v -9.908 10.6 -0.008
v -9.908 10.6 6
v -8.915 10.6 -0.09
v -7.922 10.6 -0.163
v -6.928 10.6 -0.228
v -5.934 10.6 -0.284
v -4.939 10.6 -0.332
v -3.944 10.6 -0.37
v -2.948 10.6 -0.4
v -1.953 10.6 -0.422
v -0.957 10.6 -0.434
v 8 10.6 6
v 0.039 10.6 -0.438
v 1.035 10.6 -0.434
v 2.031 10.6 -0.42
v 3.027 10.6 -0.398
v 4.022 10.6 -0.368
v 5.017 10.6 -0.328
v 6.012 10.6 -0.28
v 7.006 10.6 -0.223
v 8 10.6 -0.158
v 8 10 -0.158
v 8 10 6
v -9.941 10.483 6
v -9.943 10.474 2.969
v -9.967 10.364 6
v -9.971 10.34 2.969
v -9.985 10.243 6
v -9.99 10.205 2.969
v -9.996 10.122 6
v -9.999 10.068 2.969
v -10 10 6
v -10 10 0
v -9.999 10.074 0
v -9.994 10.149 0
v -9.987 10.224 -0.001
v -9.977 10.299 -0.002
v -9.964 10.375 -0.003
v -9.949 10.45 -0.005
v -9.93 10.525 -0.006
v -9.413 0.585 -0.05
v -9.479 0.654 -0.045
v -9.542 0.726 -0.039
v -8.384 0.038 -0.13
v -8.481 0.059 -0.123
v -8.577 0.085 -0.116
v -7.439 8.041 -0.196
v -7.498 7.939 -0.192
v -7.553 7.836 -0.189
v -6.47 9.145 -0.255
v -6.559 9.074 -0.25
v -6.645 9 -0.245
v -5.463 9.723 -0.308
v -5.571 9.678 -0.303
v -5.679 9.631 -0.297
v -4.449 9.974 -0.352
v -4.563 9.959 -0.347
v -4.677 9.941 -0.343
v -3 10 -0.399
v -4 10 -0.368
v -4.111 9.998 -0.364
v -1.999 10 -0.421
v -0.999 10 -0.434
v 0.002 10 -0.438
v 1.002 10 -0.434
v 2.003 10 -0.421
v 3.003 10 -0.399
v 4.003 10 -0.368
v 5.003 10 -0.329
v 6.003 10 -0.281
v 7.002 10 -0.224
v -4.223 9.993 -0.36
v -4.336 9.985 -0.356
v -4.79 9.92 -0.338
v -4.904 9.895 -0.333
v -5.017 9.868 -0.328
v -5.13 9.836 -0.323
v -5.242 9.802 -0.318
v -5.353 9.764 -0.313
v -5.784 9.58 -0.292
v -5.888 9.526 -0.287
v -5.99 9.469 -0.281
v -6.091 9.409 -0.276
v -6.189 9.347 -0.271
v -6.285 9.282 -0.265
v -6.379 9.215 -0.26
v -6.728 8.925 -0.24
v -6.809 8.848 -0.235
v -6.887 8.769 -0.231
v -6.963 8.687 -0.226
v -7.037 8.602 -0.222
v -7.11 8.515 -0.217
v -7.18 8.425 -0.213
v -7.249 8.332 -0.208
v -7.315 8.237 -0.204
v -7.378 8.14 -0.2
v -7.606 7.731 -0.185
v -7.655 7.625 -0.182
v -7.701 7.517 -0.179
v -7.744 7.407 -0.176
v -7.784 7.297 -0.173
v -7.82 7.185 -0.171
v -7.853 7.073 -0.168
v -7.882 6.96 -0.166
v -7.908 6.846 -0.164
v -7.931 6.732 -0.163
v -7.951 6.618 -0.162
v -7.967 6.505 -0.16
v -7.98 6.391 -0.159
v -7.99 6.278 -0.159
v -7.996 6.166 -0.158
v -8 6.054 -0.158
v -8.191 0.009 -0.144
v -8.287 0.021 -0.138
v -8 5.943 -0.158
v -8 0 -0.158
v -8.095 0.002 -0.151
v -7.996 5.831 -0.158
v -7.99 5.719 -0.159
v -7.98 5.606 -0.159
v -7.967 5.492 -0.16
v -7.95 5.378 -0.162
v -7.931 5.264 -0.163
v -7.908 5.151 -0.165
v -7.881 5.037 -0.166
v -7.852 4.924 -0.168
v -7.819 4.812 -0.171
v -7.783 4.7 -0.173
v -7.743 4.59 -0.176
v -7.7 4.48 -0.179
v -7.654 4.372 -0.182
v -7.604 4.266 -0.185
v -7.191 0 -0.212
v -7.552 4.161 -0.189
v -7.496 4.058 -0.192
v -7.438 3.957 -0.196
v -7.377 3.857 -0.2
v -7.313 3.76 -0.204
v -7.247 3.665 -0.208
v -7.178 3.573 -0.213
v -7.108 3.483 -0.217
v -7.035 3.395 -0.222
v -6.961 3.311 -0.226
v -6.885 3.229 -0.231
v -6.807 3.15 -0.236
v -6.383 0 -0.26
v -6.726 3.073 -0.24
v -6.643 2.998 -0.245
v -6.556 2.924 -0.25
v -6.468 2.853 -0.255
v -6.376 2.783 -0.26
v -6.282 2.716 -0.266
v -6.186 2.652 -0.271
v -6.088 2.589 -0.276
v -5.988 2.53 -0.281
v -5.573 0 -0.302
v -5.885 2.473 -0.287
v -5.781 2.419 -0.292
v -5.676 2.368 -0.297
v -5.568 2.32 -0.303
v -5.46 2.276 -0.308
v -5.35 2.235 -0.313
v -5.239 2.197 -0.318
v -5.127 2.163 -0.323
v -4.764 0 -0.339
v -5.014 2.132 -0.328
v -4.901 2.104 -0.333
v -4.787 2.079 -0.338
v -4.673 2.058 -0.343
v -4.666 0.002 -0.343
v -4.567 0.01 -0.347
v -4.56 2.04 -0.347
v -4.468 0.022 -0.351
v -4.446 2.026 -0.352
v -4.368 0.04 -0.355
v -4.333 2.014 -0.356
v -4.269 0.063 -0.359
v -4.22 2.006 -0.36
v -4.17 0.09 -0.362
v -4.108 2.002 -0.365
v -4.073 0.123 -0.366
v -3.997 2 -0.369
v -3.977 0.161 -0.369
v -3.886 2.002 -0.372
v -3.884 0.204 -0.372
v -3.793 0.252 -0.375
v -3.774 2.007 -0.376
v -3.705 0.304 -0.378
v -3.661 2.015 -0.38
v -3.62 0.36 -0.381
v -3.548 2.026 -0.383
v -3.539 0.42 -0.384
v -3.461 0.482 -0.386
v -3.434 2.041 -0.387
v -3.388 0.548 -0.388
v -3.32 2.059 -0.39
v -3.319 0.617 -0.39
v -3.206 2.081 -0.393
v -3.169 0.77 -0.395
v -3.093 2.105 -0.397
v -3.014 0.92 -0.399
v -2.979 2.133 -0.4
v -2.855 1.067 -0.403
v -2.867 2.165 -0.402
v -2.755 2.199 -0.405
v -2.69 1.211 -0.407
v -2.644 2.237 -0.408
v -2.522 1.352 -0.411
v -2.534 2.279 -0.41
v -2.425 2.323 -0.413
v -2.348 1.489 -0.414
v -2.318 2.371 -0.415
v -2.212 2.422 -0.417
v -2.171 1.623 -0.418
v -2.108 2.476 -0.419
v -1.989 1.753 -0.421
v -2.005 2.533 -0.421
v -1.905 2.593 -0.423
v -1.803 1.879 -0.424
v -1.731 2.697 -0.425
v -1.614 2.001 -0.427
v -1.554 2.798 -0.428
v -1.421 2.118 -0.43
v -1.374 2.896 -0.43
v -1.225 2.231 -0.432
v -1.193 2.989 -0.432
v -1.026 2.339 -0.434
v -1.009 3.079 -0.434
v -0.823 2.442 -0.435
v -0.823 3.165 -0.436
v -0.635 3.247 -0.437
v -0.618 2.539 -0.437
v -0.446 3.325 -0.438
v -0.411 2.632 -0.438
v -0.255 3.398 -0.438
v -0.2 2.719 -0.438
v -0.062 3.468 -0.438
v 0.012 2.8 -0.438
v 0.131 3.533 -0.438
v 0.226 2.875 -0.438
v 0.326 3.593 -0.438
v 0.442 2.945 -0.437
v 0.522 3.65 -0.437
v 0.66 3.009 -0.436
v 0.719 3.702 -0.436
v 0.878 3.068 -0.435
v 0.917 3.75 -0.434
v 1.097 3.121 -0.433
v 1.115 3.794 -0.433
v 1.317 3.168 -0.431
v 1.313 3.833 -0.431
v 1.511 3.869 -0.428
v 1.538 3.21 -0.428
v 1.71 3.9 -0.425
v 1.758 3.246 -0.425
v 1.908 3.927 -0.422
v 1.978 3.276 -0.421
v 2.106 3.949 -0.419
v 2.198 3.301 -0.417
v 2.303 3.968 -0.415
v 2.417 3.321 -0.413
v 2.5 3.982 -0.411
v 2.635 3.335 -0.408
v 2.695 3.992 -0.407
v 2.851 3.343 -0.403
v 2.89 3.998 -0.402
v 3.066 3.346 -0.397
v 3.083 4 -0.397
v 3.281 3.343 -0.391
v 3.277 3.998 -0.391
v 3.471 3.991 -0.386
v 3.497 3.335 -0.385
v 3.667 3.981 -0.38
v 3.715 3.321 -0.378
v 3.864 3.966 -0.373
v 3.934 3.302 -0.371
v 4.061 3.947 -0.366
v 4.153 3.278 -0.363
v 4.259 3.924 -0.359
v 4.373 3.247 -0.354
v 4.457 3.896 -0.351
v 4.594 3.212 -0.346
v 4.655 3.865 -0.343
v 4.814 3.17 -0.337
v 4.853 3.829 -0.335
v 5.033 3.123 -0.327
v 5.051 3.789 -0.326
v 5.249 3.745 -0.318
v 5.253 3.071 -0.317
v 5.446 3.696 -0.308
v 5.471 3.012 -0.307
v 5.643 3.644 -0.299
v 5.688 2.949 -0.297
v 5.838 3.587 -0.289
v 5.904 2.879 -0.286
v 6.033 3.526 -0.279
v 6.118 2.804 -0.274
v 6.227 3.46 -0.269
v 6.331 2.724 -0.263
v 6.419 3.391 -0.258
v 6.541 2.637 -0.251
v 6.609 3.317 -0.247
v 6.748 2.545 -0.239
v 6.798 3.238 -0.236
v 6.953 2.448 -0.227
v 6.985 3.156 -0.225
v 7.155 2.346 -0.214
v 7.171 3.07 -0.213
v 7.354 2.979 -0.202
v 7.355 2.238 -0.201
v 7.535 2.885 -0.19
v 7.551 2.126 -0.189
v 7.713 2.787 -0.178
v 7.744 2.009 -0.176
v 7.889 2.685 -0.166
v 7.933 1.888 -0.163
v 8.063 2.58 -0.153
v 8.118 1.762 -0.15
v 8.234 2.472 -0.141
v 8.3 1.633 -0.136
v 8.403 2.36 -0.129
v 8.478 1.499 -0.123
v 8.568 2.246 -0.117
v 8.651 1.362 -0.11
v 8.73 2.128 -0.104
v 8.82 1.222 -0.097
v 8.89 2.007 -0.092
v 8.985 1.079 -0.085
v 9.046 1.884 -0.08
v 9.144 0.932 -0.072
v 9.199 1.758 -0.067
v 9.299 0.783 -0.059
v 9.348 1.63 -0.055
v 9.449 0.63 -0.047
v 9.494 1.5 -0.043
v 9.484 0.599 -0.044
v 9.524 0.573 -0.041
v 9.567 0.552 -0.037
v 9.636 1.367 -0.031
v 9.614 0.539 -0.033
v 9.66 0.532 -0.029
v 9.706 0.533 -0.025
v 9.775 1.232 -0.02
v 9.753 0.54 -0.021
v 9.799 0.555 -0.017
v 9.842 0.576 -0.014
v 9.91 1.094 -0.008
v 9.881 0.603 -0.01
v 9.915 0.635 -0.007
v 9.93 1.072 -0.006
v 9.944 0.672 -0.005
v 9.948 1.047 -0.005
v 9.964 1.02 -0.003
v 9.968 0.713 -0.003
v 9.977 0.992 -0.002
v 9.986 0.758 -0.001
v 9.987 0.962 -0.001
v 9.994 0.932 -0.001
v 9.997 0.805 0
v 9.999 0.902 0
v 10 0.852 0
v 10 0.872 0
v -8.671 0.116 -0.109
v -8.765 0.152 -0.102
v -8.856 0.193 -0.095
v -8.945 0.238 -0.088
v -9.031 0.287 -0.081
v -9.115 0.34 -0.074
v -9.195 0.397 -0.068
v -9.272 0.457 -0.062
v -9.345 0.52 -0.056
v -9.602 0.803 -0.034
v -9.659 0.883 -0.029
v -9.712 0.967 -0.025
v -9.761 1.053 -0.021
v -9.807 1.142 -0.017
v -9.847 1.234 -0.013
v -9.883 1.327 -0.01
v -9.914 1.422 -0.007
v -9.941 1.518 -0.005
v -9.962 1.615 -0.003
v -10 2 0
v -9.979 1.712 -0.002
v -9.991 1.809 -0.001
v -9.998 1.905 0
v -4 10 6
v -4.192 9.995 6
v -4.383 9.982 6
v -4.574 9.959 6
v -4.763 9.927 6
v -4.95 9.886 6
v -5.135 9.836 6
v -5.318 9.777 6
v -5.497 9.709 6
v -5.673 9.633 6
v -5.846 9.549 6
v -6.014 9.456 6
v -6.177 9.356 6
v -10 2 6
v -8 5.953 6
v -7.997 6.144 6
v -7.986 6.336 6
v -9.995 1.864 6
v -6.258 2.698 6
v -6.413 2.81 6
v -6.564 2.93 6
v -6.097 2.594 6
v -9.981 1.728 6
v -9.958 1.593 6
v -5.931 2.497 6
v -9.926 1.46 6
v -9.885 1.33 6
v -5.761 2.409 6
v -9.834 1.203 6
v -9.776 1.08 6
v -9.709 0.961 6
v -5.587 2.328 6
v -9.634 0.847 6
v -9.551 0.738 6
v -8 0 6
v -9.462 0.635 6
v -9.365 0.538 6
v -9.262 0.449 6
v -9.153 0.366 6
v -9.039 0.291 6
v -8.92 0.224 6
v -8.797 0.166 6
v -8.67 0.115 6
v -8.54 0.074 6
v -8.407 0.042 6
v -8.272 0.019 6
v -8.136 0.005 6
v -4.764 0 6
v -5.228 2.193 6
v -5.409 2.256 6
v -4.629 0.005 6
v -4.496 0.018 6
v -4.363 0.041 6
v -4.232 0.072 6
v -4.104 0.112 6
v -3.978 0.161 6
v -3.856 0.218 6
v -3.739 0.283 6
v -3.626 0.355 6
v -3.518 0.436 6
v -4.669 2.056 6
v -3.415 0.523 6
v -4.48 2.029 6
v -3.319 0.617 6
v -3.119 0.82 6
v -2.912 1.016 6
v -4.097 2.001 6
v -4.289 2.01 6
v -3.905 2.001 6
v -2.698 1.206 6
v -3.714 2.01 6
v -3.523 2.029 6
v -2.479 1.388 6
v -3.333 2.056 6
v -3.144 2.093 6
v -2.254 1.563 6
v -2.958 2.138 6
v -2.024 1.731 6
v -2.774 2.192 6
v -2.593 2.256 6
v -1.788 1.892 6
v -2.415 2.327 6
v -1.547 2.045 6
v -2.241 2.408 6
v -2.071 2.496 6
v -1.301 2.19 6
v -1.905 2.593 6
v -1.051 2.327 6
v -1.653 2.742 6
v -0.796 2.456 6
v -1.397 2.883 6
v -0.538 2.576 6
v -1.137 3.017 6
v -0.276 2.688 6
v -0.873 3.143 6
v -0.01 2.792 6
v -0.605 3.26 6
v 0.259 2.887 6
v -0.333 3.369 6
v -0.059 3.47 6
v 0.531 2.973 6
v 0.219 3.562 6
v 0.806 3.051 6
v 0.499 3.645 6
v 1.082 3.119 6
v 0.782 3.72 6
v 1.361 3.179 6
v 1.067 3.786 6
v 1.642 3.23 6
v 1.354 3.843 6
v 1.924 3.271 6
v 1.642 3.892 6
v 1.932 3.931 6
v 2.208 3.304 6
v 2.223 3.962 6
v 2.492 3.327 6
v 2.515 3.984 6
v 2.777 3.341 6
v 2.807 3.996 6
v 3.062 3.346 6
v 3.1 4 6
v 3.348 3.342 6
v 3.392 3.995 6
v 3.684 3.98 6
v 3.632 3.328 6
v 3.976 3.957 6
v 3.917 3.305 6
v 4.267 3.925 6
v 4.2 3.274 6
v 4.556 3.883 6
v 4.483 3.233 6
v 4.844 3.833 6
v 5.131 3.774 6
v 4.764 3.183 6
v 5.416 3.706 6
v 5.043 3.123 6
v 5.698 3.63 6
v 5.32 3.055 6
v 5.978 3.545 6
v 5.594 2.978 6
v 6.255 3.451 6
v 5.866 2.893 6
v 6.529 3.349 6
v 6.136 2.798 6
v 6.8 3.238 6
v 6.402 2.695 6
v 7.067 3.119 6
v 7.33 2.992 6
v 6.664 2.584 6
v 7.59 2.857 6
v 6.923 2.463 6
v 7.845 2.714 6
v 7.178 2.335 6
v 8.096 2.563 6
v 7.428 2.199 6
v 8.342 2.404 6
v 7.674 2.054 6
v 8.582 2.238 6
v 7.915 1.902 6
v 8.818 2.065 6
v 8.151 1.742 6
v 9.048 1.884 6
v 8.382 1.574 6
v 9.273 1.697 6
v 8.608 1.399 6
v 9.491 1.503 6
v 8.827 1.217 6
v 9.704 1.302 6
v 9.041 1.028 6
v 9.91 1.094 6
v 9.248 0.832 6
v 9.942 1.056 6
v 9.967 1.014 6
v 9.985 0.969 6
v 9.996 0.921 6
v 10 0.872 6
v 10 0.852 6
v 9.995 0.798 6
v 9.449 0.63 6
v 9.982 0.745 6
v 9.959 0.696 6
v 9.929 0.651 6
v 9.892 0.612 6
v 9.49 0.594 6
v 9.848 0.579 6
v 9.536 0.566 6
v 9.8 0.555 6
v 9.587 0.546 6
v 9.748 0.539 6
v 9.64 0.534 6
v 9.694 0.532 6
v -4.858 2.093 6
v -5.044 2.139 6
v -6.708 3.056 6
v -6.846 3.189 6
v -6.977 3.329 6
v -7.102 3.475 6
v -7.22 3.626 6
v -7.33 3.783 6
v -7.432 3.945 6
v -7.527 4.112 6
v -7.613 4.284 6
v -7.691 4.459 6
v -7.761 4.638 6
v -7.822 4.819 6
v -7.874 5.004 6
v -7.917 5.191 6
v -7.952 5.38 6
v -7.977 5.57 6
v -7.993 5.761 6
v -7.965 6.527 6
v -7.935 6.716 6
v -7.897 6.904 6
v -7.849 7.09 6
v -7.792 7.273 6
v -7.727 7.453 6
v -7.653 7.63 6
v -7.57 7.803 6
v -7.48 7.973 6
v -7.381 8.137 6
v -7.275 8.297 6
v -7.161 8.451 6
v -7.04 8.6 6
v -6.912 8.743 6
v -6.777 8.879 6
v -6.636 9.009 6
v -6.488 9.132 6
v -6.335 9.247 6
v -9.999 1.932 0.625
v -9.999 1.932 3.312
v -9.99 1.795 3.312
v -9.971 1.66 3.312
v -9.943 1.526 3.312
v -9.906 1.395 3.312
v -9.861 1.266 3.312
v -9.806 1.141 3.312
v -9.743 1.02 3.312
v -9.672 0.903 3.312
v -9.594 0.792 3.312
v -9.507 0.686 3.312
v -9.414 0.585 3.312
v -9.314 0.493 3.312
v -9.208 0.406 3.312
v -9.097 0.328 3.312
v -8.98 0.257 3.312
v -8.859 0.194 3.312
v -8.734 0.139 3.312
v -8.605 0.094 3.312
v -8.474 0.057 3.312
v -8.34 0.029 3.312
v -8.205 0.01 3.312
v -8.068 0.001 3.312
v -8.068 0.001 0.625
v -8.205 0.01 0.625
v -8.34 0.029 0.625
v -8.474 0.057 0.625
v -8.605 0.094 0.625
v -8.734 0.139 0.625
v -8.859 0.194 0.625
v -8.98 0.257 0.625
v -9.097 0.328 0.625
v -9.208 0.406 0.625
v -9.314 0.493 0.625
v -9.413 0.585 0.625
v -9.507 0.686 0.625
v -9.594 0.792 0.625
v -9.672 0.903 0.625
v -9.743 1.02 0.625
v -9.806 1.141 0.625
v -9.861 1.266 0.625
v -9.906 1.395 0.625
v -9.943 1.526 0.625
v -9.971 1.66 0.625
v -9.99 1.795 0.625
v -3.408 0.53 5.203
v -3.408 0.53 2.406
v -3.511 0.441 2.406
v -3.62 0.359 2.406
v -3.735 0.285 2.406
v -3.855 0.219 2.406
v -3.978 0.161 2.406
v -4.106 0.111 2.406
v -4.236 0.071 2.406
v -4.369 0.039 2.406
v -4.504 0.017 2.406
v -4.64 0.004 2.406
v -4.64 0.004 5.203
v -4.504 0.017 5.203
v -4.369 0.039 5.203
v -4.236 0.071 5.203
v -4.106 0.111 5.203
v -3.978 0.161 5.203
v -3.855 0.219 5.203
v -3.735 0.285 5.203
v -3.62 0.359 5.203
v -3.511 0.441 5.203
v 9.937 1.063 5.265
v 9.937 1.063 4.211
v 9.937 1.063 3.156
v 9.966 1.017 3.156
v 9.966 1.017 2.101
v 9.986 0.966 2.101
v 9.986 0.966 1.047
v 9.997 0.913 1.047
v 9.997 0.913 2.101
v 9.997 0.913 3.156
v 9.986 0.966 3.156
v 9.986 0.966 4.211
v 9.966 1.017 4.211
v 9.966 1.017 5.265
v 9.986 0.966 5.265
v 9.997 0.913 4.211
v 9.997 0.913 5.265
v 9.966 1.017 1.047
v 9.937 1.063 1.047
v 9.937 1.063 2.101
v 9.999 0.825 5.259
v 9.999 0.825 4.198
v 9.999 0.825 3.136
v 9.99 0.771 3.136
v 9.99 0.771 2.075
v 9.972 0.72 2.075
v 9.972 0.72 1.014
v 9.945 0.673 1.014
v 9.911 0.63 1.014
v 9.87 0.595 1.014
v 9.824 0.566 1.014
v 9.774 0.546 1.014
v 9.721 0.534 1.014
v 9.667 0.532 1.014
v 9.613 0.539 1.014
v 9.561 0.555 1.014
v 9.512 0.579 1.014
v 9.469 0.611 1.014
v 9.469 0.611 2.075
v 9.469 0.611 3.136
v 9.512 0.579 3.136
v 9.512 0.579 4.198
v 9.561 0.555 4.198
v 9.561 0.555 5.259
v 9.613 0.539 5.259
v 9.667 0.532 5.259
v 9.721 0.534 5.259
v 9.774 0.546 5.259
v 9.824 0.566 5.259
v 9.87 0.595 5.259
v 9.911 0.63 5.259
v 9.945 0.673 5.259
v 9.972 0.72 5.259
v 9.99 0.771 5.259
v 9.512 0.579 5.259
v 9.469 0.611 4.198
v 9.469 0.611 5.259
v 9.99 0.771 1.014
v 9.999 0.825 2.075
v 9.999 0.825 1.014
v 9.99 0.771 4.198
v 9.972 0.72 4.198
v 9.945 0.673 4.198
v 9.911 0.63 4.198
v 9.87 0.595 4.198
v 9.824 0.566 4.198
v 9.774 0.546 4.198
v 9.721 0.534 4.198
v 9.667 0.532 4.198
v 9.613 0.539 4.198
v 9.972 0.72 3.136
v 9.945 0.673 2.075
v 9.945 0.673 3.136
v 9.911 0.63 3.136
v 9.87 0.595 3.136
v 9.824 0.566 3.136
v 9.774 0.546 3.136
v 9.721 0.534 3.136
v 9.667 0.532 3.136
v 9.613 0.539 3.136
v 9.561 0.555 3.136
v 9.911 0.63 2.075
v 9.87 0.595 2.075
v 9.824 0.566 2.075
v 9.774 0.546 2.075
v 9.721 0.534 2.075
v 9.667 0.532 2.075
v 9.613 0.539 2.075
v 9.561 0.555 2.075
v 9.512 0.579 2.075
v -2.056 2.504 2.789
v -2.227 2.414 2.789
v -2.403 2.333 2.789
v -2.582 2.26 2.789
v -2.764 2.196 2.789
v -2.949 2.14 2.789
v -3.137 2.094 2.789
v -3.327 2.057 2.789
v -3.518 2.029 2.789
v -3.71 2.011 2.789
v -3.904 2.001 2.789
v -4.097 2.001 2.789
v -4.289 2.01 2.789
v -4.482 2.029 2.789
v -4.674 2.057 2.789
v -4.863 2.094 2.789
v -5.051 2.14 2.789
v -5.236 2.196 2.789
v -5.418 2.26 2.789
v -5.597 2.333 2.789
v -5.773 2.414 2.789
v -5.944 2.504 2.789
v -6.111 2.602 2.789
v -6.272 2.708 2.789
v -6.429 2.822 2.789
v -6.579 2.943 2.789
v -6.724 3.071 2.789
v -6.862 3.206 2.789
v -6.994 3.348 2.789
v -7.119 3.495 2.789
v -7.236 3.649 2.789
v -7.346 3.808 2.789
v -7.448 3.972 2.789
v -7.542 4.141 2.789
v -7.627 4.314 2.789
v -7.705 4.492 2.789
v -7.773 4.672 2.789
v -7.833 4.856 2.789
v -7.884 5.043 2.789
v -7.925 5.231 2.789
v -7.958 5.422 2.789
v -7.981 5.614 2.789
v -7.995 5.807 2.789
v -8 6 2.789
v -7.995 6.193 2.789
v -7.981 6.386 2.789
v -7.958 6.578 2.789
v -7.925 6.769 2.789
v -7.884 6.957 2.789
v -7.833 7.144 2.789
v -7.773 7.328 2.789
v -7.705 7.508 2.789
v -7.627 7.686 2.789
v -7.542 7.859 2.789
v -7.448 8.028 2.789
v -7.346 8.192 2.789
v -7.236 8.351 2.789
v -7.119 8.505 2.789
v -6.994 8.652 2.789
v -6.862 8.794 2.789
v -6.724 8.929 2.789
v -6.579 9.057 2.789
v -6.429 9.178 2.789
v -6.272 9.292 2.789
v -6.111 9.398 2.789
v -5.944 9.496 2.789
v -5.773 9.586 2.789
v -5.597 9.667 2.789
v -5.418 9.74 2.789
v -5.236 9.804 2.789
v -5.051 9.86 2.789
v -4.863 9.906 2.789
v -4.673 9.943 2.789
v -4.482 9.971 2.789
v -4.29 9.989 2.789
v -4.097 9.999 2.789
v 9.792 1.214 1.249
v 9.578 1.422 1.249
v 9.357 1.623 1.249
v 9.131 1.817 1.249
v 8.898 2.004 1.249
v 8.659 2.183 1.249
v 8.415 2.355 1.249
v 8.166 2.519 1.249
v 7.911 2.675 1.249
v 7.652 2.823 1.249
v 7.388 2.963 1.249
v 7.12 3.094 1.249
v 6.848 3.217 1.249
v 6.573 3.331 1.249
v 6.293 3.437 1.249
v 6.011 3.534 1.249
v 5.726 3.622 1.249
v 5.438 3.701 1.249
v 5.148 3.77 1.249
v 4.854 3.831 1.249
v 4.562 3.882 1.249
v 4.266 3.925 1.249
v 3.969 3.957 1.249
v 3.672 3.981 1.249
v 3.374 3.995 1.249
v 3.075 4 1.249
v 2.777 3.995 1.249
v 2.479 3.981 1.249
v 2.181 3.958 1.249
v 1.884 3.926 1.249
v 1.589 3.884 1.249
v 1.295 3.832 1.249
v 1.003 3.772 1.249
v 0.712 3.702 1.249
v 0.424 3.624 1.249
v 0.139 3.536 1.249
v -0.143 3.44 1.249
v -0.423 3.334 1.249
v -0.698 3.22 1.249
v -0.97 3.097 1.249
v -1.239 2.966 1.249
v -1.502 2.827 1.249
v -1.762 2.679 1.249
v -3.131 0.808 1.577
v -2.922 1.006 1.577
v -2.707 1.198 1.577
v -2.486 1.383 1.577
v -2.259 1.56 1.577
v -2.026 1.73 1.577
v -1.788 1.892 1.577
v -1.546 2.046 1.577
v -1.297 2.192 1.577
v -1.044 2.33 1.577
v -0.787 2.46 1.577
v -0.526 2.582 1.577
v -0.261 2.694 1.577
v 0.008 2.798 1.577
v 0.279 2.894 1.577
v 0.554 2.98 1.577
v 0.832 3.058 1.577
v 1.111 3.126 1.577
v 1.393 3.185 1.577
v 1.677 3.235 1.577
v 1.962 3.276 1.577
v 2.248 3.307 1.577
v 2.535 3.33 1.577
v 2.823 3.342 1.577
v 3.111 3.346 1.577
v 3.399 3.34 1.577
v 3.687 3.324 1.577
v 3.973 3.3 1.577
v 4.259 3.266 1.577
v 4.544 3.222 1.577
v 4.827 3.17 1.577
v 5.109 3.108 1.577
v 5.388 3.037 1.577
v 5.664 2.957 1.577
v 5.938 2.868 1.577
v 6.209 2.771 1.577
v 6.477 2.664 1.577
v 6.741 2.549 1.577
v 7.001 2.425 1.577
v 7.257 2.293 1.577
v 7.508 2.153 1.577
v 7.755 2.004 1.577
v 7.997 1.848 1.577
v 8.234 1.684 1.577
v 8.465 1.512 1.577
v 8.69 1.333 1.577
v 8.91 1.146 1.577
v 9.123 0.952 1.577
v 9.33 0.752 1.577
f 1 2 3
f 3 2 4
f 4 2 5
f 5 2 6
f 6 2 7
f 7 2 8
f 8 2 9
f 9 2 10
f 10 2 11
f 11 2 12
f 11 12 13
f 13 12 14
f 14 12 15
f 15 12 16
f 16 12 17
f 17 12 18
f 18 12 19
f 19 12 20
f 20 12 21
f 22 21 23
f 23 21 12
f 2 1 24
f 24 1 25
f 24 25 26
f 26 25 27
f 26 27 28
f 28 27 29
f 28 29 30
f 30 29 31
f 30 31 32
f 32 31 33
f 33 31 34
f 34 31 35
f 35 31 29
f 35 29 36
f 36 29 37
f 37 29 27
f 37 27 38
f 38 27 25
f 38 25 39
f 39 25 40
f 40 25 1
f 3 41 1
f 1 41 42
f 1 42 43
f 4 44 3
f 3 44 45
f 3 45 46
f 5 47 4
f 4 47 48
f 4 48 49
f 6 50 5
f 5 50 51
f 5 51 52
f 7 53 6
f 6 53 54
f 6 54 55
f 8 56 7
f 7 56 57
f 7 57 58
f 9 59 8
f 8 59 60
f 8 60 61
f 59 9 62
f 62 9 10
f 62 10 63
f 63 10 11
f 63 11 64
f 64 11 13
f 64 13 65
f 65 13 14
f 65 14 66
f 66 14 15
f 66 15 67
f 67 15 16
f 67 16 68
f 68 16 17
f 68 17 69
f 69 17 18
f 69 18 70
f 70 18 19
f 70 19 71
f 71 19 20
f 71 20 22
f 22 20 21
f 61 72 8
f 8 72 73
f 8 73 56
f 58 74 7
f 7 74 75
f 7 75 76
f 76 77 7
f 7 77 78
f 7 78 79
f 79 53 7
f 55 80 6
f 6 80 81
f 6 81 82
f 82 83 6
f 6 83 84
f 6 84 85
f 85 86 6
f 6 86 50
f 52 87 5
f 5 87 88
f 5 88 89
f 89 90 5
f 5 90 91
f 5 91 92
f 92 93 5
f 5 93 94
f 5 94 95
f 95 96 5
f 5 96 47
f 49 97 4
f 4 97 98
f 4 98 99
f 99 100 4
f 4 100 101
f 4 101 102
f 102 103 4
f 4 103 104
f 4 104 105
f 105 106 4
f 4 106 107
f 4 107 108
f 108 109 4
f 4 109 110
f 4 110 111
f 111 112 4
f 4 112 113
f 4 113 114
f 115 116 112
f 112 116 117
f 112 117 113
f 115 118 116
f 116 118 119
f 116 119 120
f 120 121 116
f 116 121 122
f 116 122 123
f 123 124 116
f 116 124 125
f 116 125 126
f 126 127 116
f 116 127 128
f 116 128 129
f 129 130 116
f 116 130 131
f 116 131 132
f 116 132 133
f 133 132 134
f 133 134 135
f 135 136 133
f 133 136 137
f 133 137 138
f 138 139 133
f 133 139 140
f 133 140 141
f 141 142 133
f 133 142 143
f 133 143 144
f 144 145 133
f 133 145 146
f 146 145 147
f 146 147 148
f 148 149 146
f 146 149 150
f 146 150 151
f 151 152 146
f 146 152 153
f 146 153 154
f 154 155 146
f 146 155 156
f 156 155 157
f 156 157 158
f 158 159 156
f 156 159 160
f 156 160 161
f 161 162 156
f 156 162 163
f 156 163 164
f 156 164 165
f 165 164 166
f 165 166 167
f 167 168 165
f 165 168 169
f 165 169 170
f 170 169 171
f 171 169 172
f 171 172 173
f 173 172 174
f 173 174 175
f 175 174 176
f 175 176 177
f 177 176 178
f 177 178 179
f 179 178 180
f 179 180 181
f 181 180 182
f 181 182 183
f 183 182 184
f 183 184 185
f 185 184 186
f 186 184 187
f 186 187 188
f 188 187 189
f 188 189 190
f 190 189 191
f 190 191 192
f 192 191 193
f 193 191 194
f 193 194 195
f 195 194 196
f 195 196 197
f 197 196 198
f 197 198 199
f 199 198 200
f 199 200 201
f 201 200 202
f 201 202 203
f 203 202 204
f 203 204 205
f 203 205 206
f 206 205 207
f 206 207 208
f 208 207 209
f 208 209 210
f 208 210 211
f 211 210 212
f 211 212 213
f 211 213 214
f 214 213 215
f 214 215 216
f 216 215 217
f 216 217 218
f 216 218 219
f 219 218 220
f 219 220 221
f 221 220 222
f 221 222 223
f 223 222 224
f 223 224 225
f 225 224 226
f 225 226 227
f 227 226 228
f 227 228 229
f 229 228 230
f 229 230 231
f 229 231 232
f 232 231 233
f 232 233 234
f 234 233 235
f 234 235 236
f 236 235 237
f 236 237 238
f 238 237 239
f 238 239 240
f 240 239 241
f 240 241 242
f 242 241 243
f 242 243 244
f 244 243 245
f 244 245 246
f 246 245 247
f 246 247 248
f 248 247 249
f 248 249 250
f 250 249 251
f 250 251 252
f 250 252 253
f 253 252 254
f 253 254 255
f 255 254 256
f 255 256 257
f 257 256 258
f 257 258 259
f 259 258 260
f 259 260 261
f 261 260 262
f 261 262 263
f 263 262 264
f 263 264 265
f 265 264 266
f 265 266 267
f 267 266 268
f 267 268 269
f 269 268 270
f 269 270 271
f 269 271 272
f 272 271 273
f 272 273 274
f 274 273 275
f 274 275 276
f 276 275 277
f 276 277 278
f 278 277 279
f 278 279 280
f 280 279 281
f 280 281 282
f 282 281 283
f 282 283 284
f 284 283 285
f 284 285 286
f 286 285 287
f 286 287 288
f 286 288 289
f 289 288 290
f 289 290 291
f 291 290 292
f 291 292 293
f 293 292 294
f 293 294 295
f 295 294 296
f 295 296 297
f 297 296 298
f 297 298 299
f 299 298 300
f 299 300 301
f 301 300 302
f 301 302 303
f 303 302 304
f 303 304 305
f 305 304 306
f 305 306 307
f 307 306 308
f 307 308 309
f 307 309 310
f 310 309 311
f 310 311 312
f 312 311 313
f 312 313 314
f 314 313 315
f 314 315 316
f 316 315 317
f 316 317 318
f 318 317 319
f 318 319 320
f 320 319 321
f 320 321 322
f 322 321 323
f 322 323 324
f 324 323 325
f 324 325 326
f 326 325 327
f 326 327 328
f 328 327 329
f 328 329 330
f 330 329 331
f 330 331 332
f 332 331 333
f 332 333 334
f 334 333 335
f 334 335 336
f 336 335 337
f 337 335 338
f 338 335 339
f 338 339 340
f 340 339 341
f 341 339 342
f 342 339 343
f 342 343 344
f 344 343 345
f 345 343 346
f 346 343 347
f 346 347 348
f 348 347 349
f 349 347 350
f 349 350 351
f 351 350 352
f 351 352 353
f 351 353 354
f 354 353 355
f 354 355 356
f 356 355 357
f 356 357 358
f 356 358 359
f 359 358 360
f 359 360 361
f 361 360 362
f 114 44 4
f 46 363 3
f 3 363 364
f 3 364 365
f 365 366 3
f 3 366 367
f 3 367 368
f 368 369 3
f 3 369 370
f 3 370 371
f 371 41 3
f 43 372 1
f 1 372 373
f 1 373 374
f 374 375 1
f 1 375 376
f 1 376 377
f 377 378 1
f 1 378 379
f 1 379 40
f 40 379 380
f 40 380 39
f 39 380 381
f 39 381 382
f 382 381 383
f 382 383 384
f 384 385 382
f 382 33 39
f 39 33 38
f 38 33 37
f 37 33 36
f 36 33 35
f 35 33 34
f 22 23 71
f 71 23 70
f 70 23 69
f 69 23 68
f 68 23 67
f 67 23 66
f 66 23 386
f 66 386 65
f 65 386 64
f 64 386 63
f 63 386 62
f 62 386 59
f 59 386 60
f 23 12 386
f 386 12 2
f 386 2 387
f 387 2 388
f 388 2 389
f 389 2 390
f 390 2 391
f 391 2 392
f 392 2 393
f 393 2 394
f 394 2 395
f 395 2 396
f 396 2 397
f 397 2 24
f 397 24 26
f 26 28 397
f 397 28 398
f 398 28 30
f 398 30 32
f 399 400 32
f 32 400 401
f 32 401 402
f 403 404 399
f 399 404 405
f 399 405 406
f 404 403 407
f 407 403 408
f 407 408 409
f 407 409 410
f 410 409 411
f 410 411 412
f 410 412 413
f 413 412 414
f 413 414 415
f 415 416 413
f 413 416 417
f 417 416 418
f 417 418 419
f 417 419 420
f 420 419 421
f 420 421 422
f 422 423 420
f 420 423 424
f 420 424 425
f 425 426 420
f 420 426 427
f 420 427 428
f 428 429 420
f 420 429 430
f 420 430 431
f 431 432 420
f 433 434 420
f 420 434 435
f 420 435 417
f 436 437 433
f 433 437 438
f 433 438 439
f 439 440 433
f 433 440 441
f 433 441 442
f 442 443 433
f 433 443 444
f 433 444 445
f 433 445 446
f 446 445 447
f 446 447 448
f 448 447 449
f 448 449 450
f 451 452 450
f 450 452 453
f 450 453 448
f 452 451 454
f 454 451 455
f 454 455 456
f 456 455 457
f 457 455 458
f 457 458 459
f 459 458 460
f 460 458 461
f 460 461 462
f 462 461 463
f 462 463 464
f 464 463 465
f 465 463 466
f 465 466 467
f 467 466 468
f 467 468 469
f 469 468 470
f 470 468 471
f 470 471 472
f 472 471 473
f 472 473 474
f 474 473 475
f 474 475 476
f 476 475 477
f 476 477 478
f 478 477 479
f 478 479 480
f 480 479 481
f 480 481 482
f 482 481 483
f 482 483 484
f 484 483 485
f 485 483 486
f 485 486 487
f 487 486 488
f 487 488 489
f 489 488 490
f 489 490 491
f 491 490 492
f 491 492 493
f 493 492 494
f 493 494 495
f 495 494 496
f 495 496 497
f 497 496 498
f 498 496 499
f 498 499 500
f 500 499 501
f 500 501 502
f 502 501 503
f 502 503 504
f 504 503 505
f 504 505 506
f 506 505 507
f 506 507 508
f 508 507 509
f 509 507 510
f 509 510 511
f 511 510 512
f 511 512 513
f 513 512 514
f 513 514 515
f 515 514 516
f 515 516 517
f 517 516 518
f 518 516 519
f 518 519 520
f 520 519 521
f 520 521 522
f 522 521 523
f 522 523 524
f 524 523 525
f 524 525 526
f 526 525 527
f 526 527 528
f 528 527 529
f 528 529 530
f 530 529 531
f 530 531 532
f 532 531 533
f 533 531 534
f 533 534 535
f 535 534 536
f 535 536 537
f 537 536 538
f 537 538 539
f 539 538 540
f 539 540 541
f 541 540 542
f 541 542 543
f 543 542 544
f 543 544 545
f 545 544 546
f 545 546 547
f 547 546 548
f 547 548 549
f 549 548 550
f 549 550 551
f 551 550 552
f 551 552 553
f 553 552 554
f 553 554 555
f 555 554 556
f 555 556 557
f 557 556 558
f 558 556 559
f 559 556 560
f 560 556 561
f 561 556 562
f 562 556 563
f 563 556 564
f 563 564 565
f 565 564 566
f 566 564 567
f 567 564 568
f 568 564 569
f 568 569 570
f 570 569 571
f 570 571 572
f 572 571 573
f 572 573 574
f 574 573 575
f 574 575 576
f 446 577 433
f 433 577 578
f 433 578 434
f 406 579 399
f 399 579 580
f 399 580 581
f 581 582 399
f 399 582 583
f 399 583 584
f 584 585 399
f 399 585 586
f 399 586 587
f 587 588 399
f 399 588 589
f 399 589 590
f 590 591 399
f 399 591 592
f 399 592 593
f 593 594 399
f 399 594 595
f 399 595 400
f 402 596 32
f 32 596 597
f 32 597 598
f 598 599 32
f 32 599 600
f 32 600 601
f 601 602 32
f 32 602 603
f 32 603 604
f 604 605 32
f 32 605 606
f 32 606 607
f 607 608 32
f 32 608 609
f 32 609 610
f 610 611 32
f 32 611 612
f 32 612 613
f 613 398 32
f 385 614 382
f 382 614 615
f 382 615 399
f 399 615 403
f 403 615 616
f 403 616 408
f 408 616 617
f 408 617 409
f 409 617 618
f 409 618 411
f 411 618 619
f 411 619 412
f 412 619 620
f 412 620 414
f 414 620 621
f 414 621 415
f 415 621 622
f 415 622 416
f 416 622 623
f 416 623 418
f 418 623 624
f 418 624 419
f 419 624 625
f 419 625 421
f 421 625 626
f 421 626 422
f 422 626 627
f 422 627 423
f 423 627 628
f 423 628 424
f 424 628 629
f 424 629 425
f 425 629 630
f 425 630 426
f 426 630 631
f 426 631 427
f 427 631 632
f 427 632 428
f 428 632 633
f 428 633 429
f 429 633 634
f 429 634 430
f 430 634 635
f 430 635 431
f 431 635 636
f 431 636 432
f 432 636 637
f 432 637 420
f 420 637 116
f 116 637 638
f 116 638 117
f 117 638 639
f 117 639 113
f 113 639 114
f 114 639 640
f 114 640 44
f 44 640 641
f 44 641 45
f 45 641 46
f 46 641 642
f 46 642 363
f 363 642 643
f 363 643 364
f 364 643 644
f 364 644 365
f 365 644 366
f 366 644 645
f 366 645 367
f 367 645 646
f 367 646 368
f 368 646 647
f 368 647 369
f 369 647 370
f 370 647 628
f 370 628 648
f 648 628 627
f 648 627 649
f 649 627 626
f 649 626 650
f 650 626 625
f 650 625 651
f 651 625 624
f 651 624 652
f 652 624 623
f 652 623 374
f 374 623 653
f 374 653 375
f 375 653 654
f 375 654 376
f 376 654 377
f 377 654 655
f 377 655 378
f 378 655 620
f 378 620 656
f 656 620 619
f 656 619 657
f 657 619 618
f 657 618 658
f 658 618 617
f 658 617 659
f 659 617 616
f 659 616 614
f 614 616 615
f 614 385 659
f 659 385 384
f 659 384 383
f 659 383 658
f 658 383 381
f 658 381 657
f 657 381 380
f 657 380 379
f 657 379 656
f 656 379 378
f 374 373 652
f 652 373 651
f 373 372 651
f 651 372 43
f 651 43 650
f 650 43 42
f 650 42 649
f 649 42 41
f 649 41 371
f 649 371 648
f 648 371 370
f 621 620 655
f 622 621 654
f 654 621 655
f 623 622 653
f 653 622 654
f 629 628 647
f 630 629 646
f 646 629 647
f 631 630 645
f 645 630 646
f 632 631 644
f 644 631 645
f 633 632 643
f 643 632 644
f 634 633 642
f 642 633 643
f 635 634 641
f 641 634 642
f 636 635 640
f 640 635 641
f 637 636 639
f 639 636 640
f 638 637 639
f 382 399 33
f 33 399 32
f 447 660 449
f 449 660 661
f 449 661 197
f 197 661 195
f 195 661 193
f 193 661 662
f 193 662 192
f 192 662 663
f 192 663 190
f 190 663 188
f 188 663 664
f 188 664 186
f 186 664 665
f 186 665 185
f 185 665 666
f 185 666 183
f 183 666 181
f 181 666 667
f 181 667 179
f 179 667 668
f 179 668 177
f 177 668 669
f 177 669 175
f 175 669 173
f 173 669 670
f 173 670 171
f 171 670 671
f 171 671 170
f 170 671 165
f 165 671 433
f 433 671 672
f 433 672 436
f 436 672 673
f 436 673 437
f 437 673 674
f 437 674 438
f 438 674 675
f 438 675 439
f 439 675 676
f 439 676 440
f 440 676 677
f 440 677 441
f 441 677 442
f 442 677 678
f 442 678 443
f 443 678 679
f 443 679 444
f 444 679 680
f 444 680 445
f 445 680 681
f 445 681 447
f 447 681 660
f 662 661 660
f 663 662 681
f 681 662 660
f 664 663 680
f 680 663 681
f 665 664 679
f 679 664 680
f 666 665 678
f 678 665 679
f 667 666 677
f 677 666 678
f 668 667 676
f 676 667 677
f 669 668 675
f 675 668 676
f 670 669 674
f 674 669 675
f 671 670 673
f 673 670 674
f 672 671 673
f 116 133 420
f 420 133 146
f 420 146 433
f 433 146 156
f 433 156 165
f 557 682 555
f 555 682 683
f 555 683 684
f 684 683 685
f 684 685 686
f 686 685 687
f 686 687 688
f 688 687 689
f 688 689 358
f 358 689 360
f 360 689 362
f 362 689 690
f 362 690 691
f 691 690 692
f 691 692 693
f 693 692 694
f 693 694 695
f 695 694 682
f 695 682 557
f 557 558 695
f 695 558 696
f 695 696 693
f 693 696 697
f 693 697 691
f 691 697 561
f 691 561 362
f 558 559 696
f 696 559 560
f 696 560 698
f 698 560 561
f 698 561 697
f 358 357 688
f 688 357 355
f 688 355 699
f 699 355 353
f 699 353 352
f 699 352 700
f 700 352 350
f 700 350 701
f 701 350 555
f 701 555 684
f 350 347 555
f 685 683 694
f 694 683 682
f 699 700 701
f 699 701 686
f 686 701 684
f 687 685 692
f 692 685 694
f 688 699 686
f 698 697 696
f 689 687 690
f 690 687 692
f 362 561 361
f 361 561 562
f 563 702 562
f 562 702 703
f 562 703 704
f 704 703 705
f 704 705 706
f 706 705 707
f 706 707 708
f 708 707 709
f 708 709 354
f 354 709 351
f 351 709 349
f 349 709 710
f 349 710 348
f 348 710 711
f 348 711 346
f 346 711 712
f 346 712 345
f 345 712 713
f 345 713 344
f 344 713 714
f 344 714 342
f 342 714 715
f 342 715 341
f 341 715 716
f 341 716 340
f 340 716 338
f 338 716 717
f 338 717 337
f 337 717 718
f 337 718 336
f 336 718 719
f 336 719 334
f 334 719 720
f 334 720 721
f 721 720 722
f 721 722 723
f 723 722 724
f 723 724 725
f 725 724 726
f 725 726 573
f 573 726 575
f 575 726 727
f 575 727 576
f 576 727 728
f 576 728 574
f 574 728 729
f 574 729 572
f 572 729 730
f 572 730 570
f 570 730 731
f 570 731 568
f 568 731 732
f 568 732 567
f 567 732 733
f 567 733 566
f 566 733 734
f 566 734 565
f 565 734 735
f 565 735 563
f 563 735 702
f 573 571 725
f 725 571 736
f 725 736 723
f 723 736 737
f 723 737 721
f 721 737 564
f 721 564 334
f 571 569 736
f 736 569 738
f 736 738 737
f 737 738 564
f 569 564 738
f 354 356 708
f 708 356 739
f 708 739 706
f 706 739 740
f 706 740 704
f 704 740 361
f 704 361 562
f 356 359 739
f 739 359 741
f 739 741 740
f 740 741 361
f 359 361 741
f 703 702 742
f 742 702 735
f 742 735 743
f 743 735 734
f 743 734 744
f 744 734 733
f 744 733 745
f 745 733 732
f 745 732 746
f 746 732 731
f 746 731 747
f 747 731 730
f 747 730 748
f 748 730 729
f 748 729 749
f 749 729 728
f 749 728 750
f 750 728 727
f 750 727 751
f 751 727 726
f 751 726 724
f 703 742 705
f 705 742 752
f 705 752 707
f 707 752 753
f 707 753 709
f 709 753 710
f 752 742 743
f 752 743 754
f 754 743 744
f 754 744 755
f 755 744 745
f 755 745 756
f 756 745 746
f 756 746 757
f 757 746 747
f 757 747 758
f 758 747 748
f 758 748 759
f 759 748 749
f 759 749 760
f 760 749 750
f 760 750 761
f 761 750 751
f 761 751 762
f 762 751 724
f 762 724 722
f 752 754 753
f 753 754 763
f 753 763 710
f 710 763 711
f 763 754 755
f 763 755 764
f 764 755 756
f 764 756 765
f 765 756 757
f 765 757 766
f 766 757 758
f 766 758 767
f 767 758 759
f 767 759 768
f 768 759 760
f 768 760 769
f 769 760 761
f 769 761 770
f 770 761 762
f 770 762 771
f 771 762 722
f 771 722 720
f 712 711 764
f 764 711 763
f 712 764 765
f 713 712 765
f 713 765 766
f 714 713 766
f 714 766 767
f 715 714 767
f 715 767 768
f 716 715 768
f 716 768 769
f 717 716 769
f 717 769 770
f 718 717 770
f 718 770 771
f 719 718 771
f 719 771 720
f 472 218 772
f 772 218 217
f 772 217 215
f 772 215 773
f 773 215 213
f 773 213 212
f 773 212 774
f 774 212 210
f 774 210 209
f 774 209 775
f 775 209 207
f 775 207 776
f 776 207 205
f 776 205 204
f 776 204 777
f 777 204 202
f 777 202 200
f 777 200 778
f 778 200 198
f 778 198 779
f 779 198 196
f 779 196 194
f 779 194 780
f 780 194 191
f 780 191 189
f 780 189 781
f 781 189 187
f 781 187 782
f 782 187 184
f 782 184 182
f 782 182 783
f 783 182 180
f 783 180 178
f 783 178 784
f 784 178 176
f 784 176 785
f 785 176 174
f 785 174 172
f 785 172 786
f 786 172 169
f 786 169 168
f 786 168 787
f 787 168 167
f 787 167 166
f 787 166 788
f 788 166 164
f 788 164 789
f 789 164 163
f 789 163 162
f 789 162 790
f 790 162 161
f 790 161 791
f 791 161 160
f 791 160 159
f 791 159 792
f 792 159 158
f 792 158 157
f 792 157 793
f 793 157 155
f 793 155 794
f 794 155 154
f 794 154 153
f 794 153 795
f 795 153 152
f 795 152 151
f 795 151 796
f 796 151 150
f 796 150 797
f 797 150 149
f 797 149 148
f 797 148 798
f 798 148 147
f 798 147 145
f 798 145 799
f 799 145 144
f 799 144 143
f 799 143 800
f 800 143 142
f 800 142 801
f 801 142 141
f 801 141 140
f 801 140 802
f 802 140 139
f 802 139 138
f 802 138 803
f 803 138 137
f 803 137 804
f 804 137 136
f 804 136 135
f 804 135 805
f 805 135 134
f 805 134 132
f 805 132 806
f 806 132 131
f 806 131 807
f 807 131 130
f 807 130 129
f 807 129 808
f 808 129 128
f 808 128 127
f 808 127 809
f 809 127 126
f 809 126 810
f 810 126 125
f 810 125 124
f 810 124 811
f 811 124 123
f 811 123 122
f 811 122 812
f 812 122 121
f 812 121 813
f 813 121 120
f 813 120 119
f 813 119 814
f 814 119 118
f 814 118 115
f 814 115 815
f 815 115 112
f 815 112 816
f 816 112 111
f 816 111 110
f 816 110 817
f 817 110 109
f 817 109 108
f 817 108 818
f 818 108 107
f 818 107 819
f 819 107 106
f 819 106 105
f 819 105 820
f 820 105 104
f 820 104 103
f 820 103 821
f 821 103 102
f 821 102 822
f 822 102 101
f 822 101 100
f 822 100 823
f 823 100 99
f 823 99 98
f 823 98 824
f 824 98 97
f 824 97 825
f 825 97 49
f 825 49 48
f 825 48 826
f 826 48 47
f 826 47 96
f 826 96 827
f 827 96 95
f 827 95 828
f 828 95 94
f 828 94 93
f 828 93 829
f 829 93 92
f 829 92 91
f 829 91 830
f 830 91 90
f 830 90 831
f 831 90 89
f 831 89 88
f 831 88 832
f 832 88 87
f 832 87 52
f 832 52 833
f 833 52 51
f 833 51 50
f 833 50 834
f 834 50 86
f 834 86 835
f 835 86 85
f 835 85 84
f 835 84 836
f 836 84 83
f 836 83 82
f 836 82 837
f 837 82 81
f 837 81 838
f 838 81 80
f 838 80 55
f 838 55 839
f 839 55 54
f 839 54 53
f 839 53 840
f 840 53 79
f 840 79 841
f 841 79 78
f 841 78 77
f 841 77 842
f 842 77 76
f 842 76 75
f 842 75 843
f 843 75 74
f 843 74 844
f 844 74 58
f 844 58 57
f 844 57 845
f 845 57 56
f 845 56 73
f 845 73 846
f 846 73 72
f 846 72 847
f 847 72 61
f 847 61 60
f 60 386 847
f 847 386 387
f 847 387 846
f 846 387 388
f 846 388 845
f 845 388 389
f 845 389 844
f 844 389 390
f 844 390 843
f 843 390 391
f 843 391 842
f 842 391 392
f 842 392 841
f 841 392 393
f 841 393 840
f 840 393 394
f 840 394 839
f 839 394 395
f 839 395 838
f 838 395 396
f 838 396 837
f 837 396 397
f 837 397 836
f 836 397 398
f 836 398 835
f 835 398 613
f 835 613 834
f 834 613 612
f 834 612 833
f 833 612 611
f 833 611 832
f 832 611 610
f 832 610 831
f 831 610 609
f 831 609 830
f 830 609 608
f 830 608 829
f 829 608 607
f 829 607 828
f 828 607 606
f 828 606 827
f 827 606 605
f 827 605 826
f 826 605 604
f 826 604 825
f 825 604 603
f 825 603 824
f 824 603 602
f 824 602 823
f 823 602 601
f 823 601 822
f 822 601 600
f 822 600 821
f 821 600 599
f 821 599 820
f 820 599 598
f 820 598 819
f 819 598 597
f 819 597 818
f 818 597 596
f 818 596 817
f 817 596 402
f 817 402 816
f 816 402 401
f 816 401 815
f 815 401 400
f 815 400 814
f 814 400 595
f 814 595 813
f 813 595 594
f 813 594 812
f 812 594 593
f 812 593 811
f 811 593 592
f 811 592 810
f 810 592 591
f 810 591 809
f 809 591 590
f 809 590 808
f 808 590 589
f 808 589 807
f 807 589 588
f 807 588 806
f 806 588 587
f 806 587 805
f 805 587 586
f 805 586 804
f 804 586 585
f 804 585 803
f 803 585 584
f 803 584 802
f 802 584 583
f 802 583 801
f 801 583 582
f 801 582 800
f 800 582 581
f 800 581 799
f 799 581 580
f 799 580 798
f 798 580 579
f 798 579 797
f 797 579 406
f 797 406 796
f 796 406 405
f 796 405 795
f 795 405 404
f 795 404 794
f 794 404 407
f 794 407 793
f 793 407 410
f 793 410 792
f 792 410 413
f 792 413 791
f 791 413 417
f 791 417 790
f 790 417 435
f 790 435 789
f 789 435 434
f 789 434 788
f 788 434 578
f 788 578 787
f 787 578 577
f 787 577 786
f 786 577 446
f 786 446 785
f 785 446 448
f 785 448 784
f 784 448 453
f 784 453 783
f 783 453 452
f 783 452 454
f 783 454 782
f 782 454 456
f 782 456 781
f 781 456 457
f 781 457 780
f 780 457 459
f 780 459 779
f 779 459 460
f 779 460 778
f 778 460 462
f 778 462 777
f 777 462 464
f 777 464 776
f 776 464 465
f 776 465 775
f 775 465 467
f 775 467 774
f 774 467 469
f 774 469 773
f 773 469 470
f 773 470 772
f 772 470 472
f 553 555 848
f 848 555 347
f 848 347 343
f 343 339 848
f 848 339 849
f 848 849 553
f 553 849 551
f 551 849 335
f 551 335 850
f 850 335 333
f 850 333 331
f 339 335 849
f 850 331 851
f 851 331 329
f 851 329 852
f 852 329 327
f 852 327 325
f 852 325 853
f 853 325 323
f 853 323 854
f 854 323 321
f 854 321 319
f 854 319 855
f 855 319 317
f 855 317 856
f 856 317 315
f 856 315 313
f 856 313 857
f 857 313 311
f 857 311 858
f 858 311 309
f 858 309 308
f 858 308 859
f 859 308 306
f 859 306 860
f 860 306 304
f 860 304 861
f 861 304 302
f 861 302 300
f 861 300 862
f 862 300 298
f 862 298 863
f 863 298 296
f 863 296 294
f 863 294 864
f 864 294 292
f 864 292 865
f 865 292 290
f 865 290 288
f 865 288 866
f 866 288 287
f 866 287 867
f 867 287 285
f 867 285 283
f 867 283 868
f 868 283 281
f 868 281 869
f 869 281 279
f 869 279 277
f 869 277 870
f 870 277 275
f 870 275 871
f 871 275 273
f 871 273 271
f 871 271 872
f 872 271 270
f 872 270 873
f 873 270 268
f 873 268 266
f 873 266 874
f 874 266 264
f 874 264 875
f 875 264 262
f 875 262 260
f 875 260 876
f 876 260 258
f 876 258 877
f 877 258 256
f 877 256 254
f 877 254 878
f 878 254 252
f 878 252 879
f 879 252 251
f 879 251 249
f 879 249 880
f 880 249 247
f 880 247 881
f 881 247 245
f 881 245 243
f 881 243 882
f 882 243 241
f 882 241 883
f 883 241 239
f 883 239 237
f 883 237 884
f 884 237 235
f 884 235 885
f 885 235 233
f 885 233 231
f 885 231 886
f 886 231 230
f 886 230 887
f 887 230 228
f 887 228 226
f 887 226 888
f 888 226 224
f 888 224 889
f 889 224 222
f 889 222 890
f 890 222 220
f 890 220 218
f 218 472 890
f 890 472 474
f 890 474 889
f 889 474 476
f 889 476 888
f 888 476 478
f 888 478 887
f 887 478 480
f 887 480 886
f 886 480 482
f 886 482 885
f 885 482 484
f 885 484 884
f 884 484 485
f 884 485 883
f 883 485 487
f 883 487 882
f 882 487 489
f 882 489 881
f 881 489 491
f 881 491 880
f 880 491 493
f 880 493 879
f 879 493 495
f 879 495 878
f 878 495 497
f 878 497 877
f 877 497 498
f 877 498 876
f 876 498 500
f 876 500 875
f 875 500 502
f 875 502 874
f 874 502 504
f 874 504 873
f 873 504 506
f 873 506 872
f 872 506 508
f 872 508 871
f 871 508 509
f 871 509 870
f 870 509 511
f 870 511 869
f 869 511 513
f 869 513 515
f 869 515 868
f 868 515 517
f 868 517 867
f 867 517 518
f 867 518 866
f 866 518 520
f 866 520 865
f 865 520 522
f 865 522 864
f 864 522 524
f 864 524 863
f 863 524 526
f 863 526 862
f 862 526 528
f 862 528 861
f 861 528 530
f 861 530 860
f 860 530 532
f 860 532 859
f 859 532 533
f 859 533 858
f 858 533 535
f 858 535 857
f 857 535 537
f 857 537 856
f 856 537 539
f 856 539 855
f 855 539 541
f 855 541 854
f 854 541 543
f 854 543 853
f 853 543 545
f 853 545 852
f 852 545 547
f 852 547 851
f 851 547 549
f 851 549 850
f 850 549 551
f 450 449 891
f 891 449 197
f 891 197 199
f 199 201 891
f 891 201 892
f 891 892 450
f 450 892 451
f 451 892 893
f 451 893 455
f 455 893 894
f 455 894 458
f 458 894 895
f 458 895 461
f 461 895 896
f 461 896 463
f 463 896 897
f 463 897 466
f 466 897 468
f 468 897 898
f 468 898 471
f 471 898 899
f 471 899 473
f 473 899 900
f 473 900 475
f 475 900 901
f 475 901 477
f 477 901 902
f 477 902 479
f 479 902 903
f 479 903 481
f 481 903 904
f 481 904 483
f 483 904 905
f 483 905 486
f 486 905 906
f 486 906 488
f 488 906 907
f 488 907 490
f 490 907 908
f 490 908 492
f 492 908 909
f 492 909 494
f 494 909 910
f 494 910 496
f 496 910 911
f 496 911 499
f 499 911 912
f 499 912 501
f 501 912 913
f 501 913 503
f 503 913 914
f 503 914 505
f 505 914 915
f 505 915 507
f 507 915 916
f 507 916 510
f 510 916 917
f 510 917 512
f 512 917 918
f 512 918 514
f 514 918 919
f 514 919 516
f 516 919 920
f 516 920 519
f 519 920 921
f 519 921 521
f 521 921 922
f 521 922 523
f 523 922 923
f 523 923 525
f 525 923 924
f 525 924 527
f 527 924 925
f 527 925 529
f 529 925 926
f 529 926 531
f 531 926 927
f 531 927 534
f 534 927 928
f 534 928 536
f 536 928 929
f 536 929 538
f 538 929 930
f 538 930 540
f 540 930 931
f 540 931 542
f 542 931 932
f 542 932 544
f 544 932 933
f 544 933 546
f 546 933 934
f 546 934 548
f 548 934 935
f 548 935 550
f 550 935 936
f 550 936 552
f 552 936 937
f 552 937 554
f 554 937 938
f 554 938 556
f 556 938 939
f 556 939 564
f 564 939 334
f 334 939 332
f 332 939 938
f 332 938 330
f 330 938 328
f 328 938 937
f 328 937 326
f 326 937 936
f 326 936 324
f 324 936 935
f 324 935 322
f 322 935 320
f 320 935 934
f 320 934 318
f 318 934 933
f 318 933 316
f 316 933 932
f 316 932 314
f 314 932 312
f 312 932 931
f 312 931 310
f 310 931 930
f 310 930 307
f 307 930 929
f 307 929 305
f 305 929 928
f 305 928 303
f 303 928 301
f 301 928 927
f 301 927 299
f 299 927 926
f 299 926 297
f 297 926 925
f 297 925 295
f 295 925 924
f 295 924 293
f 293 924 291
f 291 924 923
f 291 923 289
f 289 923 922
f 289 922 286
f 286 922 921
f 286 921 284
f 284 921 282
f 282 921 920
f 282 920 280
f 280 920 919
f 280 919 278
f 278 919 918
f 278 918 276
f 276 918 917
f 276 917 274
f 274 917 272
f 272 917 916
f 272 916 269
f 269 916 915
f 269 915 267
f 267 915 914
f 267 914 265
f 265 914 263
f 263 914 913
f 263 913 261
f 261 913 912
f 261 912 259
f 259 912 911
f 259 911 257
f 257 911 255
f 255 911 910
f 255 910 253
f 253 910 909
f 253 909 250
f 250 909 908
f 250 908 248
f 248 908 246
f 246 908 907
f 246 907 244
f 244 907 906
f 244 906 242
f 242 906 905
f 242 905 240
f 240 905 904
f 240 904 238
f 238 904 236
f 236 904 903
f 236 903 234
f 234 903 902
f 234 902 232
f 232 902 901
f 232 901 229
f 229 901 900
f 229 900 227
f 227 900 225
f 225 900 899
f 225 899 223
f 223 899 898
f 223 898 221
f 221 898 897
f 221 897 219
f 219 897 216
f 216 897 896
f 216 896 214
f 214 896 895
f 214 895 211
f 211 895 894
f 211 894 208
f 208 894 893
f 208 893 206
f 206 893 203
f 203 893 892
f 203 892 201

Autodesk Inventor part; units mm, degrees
ref_plane "YZ Plane" through (0, 0, 0) normal (1, 0, 0) x (0, 1, 0)
ref_plane "XZ Plane" through (0, 0, 0) normal (0, 1, 0) x (-1, 0, 0)
ref_plane "XY Plane" through (0, 0, 0) normal (0, 0, 1) x (1, 0, 0)
sketch "Sketch1" plane through (0, 0, 0) normal (0, 1, 0) x (-1, 0, 0)
  arc A0 (-10, 0) -> (10, 0) centre (0, 113.8115) ccw
  line L0 (10, 0) -> (-10, 0) construction
  line L1 (10, 0) -> (-10, 0)
  line L2 (-10, 0) -> (-10, 6)
  line L3 (-10, 6) -> (10, 6)
  line L4 (10, 6) -> (10, 0)
  point P0 (0, 0)
  point P1 (0, 0)
  dimension "d0" = 114.25
  dimension "d1" = 20
  dimension "d2" = 6
extrude "Extrusion1" add sketch "Sketch1" along normal blind 12
sketch "Sketch2" plane through (-10, 0, 6) normal (0, 0, 1) x (1, 0, 0)
  line L0 (20, 0) -> (0, 0) construction
  line L1 (20, 0) -> (20, 12) construction
  line L2 (0, 12) -> (20, 12) construction
  line L3 (0, 0) -> (0, 12) construction
  circle A0 centre (6, 6) radius 4
  arc A1 (20, 1) -> (8.0951, 2.5925) centre (13.0714, -5.501) ccw
  line L4 (10, 6) -> (10, 0) construction
  line L5 (6, 10) -> (20, 10)
  line L6 (20, 1) -> (20, 0)
  line L7 (20, 0) -> (0, 0) construction
  line L8 (20, 0) -> (0, 0)
  line L9 (0, 0) -> (0, 12)
  line L10 (20, 12) -> (0, 12) construction
  line L11 (20, 12) -> (20, 10)
  line L12 (20, 12) -> (0, 12)
  line L13 (10.6891, 4) -> (16.5284, 4) construction
  arc A2 (20, 0) -> (6.1427, 0) centre (13.0714, -5.501) ccw
  line L14 (20, 1) -> (20, 10)
  point P0 (20, 6)
  dimension "d5" = 8
  dimension "d7" = 1
  dimension "d8" = 2
  dimension "d14" = 2
extrude "Extrusion2" cut sketch "Sketch2" against normal through all contours A0 | A0 L5 L14 A1 | L8 A2
fillet "Fillet1" radius 0.32 2 edges at (10, 0, 3) (10, 1, 3)
fillet "Fillet2" radius 2 4 edges at (-3.8573, 0, 2.8133) (-10, 12, 3) (-10, 0, 3) (10, 10, 3)
sketch "Sketch3" plane through (-8, 0, 6) normal (0, 0, 1) x (1, 0, 0)
  arc A0 (16, 10) -> (18, 12) centre (16, 12) ccw construction
  line L0 (0, 12) -> (18, 12) construction
  arc A1 (0, 12) -> (-2, 10) centre (0, 10) ccw construction
  line L1 (-2, 2) -> (-2, 10) construction
  arc A2 (-2, 2) -> (0, 0) centre (0, 2) ccw construction
  line L2 (3.2362, 0) -> (0, 0) construction
  arc A3 (3.2362, 0) -> (4.6809, 0.6169) centre (3.2362, 2) ccw construction
  arc A4 (17.4493, 0.63) -> (4.6809, 0.6169) centre (11.0714, -5.501) ccw construction
  arc A5 (17.4493, 0.63) -> (18, 0.8517) centre (17.68, 0.8517) ccw construction
  line L3 (18, 0.8517) -> (18, 0.8721) construction
  arc A6 (18, 0.8721) -> (17.9103, 1.0943) centre (17.68, 0.8721) ccw construction
  arc A7 (17.9103, 1.0943) -> (6.0951, 2.5925) centre (11.0714, -5.501) ccw construction
  arc A8 (4, 10) -> (6.0951, 2.5925) centre (4, 6) ccw construction
  line L4 (4, 10) -> (16, 10) construction
  line L5 (-2, 12) -> (18, 12)
  line L6 (18, 12) -> (18, 10.6)
  line L7 (18, 10.6) -> (-2, 10.6)
  line L8 (-2, 10.6) -> (-2, 12)
  line L9 (16, 10.6) -> (18, 10.6)
  line L10 (18, 10.6) -> (18, 10)
  line L11 (18, 10) -> (16, 10)
  line L12 (16, 10) -> (16, 10.6)
  point P0 (8, 0)
  dimension "d15" = 20
  dimension "d16" = 1.4
extrude "Extrusion3" cut sketch "Sketch3" against normal blind 10
properties part number "receiving_clip"
